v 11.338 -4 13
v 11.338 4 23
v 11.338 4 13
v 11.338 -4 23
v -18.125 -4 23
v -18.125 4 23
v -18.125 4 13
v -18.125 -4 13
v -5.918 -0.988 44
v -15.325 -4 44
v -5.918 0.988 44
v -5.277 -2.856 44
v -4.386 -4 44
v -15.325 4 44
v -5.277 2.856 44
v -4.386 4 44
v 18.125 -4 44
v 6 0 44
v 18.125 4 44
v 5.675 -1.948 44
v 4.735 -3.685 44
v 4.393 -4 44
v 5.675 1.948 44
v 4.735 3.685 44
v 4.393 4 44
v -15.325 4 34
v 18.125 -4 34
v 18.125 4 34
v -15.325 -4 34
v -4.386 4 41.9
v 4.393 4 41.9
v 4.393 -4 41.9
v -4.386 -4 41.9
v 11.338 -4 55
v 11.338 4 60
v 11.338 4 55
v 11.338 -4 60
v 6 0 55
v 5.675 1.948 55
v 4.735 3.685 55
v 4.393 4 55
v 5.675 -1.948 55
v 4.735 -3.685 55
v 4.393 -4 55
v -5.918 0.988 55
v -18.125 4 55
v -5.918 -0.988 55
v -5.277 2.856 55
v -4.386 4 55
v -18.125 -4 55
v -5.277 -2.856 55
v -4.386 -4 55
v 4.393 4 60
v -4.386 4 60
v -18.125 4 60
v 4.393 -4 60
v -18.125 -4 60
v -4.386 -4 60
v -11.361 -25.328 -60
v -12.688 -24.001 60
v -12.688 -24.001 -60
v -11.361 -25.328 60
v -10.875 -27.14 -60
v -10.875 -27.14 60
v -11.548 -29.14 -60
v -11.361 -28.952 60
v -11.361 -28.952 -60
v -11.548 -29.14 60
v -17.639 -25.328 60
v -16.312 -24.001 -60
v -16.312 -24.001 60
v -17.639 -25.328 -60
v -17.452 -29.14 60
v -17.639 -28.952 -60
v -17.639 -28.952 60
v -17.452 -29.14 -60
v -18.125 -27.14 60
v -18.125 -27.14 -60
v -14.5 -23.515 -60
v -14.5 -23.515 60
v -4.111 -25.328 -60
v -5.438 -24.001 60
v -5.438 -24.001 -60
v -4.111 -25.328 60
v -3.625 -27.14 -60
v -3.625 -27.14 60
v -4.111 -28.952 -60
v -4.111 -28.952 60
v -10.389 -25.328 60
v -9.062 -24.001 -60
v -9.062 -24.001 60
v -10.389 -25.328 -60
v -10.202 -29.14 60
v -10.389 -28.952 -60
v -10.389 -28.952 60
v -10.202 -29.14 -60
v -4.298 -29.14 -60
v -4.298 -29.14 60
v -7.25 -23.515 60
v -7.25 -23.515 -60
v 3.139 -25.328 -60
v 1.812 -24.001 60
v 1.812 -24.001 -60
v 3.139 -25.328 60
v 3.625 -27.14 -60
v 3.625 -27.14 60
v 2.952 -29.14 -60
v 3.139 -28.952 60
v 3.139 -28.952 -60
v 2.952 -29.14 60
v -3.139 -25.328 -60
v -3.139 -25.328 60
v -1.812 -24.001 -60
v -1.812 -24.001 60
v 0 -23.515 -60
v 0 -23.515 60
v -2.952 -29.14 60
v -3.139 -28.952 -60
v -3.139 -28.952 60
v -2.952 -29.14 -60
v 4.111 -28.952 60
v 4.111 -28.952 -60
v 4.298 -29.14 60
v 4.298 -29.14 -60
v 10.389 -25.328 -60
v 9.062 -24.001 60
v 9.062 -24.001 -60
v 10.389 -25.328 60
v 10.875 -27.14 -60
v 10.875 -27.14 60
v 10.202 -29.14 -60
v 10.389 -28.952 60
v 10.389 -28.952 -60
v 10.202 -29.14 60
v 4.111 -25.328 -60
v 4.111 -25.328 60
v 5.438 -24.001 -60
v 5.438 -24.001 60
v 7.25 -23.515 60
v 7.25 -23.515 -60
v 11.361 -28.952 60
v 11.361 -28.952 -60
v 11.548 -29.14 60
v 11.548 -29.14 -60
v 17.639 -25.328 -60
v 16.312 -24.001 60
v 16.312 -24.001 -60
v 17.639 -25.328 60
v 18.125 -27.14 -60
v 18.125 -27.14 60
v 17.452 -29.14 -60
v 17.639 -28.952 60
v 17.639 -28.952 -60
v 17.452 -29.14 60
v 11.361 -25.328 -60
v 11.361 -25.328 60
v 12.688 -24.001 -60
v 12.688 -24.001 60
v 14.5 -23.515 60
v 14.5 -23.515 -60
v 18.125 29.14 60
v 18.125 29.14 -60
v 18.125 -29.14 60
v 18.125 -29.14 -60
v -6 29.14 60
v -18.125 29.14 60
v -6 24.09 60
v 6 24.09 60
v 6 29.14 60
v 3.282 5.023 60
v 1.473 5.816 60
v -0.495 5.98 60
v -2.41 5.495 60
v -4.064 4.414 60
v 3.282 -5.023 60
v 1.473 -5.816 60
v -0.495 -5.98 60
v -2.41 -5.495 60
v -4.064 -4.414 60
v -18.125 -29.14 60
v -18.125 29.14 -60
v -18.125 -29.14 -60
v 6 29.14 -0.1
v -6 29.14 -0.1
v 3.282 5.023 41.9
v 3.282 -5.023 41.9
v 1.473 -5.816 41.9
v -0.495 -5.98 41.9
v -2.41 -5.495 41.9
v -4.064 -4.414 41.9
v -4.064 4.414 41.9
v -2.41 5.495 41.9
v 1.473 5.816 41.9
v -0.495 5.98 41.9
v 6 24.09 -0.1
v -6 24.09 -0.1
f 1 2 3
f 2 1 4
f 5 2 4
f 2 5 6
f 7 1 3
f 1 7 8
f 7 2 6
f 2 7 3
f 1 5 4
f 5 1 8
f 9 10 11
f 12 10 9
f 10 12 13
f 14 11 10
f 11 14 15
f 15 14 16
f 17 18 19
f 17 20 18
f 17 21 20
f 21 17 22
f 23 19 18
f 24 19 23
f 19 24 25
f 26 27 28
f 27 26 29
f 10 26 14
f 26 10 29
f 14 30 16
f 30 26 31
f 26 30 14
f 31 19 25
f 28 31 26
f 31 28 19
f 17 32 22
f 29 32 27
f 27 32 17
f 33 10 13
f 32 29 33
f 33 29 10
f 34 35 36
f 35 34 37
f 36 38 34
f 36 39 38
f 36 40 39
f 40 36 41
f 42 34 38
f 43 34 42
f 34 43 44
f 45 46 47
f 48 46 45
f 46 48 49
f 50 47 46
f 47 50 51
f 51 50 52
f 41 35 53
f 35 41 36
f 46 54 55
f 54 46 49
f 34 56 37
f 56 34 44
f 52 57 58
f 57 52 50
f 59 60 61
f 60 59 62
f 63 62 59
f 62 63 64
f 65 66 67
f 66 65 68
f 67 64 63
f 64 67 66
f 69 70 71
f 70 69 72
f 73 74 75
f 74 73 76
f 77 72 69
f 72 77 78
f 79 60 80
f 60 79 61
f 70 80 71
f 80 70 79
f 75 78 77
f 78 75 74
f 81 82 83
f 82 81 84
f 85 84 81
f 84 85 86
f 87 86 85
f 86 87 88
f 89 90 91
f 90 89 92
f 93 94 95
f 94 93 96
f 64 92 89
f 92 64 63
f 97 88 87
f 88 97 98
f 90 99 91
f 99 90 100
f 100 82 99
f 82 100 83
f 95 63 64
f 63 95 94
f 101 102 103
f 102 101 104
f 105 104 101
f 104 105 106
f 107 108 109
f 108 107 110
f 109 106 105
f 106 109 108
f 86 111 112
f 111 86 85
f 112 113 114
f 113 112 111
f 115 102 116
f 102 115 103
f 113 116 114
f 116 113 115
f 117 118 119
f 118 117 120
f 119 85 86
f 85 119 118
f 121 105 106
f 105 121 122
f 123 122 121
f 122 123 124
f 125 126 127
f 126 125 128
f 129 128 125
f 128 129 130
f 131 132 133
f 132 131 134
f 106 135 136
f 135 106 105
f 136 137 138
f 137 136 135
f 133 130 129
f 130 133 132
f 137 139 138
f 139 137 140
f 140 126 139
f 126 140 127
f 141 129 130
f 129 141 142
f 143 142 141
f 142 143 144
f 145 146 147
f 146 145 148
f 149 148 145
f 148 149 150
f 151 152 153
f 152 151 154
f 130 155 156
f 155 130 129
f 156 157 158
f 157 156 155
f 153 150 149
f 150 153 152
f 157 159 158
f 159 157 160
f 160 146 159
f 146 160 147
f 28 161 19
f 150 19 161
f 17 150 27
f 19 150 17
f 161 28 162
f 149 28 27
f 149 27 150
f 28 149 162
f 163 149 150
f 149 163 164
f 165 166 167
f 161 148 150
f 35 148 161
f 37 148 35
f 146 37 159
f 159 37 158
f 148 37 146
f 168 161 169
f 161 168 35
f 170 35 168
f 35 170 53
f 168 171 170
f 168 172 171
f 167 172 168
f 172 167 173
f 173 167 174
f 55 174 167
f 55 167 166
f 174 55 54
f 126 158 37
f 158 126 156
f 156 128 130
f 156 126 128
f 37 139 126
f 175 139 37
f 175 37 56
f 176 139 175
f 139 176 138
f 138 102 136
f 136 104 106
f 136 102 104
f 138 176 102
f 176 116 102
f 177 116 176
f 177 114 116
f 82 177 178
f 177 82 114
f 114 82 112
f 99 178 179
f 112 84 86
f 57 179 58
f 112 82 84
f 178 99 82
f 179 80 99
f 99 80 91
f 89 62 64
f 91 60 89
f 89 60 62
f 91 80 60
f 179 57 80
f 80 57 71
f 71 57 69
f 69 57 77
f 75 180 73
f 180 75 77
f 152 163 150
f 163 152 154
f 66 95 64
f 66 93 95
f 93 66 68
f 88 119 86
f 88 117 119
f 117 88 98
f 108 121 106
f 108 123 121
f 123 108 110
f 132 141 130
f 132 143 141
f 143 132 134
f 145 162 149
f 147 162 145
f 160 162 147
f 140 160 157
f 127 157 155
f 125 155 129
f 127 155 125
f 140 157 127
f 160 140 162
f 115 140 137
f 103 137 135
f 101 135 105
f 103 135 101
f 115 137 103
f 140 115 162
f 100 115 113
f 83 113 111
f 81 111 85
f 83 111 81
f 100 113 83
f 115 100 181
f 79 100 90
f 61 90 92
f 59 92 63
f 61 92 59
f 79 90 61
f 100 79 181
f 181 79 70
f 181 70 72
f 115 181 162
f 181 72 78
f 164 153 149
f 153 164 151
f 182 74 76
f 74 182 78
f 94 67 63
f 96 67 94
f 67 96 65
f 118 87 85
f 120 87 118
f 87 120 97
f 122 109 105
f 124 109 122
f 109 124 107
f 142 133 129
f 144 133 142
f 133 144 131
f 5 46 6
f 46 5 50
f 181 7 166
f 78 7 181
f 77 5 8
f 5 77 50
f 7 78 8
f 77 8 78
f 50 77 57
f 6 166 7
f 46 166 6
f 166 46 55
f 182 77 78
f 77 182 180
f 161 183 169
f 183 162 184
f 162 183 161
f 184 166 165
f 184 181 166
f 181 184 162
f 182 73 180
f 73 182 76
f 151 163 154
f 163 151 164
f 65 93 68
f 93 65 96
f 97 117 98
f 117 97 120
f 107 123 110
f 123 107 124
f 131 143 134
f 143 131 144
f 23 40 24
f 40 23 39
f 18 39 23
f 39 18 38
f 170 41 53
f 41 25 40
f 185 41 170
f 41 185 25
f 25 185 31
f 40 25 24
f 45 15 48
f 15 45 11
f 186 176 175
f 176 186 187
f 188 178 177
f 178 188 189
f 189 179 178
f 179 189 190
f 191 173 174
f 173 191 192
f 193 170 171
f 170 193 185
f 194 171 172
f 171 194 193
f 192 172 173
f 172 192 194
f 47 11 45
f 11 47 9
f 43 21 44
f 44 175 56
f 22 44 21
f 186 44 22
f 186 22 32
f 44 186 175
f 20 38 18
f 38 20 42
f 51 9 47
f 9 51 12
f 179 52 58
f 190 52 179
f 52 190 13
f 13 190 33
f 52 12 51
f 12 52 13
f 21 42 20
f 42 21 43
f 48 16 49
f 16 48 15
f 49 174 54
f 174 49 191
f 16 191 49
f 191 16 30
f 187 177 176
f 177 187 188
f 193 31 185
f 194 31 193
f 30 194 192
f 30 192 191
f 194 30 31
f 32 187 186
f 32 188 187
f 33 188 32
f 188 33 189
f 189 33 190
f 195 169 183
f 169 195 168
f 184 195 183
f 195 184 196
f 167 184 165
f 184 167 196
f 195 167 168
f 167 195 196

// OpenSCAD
/* doodle-meta {"version":1,"parameters":{"width":{"label":"Overall width","description":"Changes the body width","unit":"mm","feature":"body_width"},"depth":{"label":"Overall depth","description":"Changes the body depth","unit":"mm","feature":"body_depth"},"height":{"label":"Overall height","description":"Changes the body height","unit":"mm","feature":"body_height"},"thickness":{"label":"Plate thickness","description":"Changes the thickness of the plate","unit":"mm","feature":"body_thickness"},"hole_diameter":{"label":"Central hole diameter","description":"Changes the diameter of the central hole","unit":"mm","feature":"central_hole"},"slot_width":{"label":"Slot width","description":"Changes the width of the mounting slots","unit":"mm","feature":"slot_row"},"slot_height":{"label":"Slot height","description":"Changes the height of the mounting slots","unit":"mm","feature":"slot_row"},"slot_count":{"label":"Slot count","description":"Changes the number of mounting slots","unit":"count","feature":"slot_row"}},"features":{"body_width":{"kind":"dimension","axis":"x","label":"Overall width"},"body_depth":{"kind":"dimension","axis":"y","label":"Overall depth"},"body_height":{"kind":"dimension","axis":"z","label":"Overall height"},"body_thickness":{"kind":"dimension","axis":"y","label":"Plate thickness"},"central_hole":{"kind":"region","label":"Central hole","min":[{"parameter":"width","scale":0.5,"offset":0},{"parameter":"depth","scale":0.5,"offset":0},{"parameter":"height","scale":0.8,"offset":0}],"max":[{"parameter":"width","scale":0.5,"offset":0},{"parameter":"depth","scale":0.5,"offset":0},{"parameter":"height","scale":0.9,"offset":0}]},"slot_row":{"kind":"region","label":"Slot row","min":[{"parameter":"width","scale":0.2,"offset":0},{"parameter":"depth","scale":0.5,"offset":0},{"parameter":"height","scale":0.1,"offset":0}],"max":[{"parameter":"width","scale":0.8,"offset":0},{"parameter":"depth","scale":0.5,"offset":0},{"parameter":"height","scale":0.9,"offset":0}]}}} */

// Parameters
width = 36.25;
depth = 58.28;
height = 120.0;
thickness = 6.0;
hole_diameter = 12.0;
slot_width = 8.0;
slot_height = 10.0;
slot_count = 5;

// Derived constants
eps = 0.1;
hole_z = height * 0.85;
slot_start_z = height * 0.15;
slot_end_z = height * 0.85;
slot_pitch = (slot_end_z - slot_start_z) / (slot_count - 1);

// Zig-zag offsets in X (normalized 0-1, mapped to width)
// Right view centroids: u=0.31 (left), u=0.58 (right) alternating
// u=0 is left edge, u=1 is right edge of the plate in right view
// In CAD: X goes from 0 to width. u=0.31 -> X=0.31*width, u=0.58 -> X=0.58*width
slot_x_offsets = [0.31, 0.58, 0.31, 0.58, 0.31];

// Scalloped bottom edge parameters
scallop_count = 5;
scallop_depth = 4.0;
scallop_radius = (width / scallop_count) / 2.0;

// Concave notch at top
notch_width = 12.0;
notch_depth = 5.0;

difference() {
    // Base Plate
    translate([0, 0, 0])
        cube([width, depth, height], center=true);

    // Central Hole (Top View -> cuts along Z)
    translate([0, 0, hole_z])
        cylinder(d=hole_diameter, h=height+2*eps, center=true);

    // Slot Row (Right View -> cuts along X)
    for (i = [0 : slot_count - 1]) {
        translate([
            (slot_x_offsets[i] - 0.5) * width,
            0,
            slot_start_z + i * slot_pitch
        ])
            cube([width+2*eps, slot_width, slot_height], center=true);
    }

    // Concave notch at top edge (cuts into Y from back)
    translate([0, depth/2 - notch_depth/2, height/2])
        cube([notch_width, notch_depth+eps, height+2*eps], center=true);

    // Scalloped bottom edge (cuts into Y from front)
    for (i = [0 : scallop_count - 1]) {
        translate([
            (i + 0.5) * (width / scallop_count) - width/2,
            -depth/2 + scallop_depth/2,
            0
        ])
            cylinder(d=scallop_radius*2, h=height+2*eps, center=true);
    }
}
